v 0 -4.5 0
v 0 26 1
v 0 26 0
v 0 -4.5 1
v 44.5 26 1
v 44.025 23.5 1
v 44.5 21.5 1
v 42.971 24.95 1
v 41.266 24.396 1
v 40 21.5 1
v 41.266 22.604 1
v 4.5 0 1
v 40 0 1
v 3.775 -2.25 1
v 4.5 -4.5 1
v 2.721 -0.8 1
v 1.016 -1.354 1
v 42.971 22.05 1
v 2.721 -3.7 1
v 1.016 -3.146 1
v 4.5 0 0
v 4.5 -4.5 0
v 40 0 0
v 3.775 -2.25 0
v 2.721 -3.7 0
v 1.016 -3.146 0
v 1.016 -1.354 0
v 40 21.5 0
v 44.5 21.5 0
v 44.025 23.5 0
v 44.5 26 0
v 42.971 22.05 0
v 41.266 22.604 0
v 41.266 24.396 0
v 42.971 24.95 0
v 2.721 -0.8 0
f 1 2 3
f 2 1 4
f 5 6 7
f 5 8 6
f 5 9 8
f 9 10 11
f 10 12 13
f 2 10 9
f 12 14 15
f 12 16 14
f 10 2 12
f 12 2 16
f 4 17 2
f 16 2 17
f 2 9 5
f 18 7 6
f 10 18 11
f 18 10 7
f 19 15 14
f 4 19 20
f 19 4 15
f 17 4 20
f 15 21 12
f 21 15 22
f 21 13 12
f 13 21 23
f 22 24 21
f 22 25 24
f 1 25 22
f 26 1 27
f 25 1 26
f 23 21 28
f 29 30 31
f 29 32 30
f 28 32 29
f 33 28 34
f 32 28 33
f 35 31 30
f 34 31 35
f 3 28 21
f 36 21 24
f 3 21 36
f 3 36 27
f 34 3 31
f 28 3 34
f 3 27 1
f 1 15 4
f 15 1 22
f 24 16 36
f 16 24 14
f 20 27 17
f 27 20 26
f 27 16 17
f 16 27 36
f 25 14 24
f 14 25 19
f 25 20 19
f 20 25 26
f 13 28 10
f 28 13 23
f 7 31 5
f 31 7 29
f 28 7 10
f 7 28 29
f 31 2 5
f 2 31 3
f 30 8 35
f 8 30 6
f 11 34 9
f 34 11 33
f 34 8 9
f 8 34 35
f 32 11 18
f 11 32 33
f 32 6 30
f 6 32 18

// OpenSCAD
union()
{
    cube([40, 26, 1]);
    
    difference()
    {
        translate([0, -4.5, 0])
            cube([4.5, 4.5, 1]);
        translate([2.25, -2.25, 0])
            cylinder(30, 3.05/2, 3.05/2);
    }
    
    difference()
    {
        translate([40, 21.5, 0])
            cube([4.5, 4.5, 1]);
        translate([42.5, 23.5, 0])
            cylinder(15, 3.05/2, 3.05/2);
    }
}
